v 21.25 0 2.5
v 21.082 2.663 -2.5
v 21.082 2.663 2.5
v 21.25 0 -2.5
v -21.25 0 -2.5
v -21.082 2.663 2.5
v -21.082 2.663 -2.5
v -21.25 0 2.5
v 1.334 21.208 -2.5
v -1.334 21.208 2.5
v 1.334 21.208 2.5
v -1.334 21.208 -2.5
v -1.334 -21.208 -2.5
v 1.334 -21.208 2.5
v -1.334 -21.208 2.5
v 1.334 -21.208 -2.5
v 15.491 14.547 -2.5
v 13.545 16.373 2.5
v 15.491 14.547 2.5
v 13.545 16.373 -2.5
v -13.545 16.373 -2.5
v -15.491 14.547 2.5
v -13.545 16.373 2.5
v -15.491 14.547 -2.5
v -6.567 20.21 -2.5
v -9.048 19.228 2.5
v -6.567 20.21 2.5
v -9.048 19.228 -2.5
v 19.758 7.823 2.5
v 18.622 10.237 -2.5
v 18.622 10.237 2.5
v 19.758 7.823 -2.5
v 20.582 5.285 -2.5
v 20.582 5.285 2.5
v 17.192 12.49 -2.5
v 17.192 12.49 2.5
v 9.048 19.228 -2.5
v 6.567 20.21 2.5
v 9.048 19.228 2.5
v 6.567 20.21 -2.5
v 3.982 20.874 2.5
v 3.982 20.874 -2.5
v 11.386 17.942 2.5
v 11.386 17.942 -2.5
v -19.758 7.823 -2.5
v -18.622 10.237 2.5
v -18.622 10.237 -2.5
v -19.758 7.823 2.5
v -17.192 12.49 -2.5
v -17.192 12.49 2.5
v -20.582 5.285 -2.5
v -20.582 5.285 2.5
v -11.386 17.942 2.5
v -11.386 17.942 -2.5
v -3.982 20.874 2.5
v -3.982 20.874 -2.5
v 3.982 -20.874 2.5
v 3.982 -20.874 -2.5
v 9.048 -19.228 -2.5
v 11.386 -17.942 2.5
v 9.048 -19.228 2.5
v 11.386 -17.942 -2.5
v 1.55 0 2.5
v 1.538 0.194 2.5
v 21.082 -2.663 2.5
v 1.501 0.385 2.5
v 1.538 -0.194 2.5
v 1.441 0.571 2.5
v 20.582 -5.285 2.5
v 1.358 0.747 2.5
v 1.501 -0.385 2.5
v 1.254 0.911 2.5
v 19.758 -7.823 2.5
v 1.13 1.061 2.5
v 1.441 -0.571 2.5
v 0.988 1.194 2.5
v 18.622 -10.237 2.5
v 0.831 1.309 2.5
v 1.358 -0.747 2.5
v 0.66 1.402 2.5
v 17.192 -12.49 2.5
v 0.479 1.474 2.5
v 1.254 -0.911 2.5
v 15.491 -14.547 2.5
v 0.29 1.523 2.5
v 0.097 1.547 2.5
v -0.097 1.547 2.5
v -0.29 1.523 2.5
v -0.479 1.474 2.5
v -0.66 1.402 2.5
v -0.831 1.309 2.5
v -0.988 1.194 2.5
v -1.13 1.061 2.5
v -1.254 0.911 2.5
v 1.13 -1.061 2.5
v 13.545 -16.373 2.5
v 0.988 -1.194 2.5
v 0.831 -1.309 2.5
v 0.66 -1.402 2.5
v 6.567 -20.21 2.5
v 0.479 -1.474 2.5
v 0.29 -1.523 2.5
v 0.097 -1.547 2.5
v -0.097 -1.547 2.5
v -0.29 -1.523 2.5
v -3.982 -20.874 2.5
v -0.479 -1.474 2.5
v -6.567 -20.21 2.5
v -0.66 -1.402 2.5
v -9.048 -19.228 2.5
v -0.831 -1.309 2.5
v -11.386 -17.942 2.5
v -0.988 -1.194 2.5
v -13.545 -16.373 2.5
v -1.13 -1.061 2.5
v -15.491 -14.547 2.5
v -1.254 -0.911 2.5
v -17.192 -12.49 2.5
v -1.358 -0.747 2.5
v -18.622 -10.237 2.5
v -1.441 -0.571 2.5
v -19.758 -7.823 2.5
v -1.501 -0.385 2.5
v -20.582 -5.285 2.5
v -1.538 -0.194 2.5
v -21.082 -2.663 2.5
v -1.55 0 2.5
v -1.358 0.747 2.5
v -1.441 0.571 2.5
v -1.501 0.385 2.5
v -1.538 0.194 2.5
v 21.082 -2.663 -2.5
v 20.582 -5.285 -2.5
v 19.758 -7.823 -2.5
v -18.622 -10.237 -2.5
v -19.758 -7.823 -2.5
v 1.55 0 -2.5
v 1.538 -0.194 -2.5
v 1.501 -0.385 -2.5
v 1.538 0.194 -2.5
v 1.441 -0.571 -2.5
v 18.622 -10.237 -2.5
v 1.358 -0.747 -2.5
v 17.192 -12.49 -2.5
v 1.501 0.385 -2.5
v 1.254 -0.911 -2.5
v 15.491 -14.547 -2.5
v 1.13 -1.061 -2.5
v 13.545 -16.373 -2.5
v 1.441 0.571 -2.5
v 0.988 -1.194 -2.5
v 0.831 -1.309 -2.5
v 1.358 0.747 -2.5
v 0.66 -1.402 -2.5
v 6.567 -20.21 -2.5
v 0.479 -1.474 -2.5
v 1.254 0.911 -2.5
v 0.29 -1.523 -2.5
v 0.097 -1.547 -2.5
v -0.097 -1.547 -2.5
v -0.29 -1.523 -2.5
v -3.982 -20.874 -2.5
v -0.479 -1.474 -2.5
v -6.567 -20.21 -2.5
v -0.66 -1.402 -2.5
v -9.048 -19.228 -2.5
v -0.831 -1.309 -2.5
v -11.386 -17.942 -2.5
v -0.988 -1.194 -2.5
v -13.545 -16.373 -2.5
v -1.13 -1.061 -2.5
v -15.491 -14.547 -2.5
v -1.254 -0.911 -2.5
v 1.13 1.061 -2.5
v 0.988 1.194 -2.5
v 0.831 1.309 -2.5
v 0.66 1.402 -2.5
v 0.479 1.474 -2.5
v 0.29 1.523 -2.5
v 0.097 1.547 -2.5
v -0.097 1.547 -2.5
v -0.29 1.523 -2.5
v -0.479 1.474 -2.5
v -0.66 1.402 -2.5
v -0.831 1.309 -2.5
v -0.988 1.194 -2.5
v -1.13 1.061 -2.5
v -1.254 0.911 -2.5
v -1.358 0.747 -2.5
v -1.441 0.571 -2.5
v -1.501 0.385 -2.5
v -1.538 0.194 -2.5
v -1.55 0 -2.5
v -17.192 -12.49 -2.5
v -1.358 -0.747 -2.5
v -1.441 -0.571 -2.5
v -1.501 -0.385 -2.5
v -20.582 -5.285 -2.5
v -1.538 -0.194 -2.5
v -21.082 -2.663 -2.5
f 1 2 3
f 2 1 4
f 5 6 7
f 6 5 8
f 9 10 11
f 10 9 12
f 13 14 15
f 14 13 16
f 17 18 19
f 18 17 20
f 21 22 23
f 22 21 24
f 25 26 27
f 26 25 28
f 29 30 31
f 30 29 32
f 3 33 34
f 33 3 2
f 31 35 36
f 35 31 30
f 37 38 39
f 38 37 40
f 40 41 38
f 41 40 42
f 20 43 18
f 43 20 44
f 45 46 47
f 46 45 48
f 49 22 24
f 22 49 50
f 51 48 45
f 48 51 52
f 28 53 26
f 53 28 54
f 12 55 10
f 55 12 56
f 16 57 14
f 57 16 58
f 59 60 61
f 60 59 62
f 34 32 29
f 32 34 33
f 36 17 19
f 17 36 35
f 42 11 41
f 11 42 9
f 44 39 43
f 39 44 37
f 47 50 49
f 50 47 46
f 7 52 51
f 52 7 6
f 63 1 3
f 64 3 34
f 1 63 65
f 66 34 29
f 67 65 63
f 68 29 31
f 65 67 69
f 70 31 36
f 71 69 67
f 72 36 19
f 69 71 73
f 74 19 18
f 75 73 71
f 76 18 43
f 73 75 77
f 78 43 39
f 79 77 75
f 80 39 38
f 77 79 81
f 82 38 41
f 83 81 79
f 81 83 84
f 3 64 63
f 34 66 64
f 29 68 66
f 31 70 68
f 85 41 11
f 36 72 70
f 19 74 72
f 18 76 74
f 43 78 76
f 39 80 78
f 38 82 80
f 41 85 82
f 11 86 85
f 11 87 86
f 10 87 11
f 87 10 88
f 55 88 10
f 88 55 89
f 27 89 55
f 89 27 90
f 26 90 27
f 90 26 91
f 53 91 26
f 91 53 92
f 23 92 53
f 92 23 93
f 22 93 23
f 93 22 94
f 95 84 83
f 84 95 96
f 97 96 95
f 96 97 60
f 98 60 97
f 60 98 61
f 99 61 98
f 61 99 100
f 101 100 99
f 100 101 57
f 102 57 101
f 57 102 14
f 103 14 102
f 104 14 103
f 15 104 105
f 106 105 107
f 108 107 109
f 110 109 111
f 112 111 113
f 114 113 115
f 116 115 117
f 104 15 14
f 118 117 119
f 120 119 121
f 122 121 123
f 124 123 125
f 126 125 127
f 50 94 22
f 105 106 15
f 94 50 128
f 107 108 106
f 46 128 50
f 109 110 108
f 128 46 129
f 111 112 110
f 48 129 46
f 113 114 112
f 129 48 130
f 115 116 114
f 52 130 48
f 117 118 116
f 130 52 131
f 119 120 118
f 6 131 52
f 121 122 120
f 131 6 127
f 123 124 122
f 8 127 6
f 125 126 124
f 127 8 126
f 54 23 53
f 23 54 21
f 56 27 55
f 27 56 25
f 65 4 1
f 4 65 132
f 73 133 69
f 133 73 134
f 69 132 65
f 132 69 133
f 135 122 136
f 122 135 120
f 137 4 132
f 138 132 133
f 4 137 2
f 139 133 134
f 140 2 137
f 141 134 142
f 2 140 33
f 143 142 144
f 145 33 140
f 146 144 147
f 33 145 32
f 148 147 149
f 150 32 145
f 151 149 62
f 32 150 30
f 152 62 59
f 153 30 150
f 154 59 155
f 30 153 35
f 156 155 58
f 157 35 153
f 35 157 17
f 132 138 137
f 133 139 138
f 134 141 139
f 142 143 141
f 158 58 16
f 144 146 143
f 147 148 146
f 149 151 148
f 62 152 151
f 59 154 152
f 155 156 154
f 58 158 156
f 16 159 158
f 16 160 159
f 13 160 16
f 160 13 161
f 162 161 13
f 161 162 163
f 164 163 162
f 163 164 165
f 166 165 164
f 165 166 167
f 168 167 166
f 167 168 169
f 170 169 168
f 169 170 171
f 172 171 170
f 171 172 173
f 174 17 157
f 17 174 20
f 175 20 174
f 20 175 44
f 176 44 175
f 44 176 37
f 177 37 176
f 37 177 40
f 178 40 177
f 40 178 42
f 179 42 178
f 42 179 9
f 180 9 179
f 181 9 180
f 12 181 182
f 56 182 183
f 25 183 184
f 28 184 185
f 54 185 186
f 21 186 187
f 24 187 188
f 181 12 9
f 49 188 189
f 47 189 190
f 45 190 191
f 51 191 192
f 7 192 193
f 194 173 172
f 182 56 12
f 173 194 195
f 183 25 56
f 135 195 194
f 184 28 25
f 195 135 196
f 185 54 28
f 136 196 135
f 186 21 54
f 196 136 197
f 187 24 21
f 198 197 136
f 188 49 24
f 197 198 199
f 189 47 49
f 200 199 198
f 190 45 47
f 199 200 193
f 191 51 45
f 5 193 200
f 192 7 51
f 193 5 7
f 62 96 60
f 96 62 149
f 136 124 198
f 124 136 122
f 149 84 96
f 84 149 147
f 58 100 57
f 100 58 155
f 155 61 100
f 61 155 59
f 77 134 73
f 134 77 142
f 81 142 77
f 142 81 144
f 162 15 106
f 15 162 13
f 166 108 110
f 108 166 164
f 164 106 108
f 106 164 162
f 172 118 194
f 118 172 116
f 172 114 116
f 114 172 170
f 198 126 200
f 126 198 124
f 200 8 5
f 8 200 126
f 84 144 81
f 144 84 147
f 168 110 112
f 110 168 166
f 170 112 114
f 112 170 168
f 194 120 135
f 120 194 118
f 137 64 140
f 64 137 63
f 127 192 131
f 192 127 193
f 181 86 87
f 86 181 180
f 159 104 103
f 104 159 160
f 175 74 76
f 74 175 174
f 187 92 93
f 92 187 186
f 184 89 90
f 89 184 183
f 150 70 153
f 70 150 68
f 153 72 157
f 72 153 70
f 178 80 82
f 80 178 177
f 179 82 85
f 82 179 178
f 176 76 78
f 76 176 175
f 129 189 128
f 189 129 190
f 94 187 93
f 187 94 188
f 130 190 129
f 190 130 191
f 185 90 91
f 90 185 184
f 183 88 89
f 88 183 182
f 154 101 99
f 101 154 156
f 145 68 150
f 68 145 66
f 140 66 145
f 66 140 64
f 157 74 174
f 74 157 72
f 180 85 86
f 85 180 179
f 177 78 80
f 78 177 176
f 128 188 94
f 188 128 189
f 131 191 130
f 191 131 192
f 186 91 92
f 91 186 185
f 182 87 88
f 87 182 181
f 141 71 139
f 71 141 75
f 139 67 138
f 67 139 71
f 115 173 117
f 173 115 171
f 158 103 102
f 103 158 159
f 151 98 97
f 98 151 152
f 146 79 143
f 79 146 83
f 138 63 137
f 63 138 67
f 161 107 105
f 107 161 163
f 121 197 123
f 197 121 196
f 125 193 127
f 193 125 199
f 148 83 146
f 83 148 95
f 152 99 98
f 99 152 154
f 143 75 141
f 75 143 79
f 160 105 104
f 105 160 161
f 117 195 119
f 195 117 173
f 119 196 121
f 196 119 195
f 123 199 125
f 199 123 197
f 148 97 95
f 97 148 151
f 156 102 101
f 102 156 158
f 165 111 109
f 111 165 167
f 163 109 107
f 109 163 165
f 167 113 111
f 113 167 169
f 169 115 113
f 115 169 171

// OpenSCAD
$fn = 50;


difference() {
	union() {
		translate(v = [0, 0, -2.5000000000]) {
			cylinder(h = 5, r = 21.2500000000);
		}
	}
	union() {
		translate(v = [0, 0, -100.0000000000]) {
			cylinder(h = 200, r = 1.5500000000);
		}
	}
}
